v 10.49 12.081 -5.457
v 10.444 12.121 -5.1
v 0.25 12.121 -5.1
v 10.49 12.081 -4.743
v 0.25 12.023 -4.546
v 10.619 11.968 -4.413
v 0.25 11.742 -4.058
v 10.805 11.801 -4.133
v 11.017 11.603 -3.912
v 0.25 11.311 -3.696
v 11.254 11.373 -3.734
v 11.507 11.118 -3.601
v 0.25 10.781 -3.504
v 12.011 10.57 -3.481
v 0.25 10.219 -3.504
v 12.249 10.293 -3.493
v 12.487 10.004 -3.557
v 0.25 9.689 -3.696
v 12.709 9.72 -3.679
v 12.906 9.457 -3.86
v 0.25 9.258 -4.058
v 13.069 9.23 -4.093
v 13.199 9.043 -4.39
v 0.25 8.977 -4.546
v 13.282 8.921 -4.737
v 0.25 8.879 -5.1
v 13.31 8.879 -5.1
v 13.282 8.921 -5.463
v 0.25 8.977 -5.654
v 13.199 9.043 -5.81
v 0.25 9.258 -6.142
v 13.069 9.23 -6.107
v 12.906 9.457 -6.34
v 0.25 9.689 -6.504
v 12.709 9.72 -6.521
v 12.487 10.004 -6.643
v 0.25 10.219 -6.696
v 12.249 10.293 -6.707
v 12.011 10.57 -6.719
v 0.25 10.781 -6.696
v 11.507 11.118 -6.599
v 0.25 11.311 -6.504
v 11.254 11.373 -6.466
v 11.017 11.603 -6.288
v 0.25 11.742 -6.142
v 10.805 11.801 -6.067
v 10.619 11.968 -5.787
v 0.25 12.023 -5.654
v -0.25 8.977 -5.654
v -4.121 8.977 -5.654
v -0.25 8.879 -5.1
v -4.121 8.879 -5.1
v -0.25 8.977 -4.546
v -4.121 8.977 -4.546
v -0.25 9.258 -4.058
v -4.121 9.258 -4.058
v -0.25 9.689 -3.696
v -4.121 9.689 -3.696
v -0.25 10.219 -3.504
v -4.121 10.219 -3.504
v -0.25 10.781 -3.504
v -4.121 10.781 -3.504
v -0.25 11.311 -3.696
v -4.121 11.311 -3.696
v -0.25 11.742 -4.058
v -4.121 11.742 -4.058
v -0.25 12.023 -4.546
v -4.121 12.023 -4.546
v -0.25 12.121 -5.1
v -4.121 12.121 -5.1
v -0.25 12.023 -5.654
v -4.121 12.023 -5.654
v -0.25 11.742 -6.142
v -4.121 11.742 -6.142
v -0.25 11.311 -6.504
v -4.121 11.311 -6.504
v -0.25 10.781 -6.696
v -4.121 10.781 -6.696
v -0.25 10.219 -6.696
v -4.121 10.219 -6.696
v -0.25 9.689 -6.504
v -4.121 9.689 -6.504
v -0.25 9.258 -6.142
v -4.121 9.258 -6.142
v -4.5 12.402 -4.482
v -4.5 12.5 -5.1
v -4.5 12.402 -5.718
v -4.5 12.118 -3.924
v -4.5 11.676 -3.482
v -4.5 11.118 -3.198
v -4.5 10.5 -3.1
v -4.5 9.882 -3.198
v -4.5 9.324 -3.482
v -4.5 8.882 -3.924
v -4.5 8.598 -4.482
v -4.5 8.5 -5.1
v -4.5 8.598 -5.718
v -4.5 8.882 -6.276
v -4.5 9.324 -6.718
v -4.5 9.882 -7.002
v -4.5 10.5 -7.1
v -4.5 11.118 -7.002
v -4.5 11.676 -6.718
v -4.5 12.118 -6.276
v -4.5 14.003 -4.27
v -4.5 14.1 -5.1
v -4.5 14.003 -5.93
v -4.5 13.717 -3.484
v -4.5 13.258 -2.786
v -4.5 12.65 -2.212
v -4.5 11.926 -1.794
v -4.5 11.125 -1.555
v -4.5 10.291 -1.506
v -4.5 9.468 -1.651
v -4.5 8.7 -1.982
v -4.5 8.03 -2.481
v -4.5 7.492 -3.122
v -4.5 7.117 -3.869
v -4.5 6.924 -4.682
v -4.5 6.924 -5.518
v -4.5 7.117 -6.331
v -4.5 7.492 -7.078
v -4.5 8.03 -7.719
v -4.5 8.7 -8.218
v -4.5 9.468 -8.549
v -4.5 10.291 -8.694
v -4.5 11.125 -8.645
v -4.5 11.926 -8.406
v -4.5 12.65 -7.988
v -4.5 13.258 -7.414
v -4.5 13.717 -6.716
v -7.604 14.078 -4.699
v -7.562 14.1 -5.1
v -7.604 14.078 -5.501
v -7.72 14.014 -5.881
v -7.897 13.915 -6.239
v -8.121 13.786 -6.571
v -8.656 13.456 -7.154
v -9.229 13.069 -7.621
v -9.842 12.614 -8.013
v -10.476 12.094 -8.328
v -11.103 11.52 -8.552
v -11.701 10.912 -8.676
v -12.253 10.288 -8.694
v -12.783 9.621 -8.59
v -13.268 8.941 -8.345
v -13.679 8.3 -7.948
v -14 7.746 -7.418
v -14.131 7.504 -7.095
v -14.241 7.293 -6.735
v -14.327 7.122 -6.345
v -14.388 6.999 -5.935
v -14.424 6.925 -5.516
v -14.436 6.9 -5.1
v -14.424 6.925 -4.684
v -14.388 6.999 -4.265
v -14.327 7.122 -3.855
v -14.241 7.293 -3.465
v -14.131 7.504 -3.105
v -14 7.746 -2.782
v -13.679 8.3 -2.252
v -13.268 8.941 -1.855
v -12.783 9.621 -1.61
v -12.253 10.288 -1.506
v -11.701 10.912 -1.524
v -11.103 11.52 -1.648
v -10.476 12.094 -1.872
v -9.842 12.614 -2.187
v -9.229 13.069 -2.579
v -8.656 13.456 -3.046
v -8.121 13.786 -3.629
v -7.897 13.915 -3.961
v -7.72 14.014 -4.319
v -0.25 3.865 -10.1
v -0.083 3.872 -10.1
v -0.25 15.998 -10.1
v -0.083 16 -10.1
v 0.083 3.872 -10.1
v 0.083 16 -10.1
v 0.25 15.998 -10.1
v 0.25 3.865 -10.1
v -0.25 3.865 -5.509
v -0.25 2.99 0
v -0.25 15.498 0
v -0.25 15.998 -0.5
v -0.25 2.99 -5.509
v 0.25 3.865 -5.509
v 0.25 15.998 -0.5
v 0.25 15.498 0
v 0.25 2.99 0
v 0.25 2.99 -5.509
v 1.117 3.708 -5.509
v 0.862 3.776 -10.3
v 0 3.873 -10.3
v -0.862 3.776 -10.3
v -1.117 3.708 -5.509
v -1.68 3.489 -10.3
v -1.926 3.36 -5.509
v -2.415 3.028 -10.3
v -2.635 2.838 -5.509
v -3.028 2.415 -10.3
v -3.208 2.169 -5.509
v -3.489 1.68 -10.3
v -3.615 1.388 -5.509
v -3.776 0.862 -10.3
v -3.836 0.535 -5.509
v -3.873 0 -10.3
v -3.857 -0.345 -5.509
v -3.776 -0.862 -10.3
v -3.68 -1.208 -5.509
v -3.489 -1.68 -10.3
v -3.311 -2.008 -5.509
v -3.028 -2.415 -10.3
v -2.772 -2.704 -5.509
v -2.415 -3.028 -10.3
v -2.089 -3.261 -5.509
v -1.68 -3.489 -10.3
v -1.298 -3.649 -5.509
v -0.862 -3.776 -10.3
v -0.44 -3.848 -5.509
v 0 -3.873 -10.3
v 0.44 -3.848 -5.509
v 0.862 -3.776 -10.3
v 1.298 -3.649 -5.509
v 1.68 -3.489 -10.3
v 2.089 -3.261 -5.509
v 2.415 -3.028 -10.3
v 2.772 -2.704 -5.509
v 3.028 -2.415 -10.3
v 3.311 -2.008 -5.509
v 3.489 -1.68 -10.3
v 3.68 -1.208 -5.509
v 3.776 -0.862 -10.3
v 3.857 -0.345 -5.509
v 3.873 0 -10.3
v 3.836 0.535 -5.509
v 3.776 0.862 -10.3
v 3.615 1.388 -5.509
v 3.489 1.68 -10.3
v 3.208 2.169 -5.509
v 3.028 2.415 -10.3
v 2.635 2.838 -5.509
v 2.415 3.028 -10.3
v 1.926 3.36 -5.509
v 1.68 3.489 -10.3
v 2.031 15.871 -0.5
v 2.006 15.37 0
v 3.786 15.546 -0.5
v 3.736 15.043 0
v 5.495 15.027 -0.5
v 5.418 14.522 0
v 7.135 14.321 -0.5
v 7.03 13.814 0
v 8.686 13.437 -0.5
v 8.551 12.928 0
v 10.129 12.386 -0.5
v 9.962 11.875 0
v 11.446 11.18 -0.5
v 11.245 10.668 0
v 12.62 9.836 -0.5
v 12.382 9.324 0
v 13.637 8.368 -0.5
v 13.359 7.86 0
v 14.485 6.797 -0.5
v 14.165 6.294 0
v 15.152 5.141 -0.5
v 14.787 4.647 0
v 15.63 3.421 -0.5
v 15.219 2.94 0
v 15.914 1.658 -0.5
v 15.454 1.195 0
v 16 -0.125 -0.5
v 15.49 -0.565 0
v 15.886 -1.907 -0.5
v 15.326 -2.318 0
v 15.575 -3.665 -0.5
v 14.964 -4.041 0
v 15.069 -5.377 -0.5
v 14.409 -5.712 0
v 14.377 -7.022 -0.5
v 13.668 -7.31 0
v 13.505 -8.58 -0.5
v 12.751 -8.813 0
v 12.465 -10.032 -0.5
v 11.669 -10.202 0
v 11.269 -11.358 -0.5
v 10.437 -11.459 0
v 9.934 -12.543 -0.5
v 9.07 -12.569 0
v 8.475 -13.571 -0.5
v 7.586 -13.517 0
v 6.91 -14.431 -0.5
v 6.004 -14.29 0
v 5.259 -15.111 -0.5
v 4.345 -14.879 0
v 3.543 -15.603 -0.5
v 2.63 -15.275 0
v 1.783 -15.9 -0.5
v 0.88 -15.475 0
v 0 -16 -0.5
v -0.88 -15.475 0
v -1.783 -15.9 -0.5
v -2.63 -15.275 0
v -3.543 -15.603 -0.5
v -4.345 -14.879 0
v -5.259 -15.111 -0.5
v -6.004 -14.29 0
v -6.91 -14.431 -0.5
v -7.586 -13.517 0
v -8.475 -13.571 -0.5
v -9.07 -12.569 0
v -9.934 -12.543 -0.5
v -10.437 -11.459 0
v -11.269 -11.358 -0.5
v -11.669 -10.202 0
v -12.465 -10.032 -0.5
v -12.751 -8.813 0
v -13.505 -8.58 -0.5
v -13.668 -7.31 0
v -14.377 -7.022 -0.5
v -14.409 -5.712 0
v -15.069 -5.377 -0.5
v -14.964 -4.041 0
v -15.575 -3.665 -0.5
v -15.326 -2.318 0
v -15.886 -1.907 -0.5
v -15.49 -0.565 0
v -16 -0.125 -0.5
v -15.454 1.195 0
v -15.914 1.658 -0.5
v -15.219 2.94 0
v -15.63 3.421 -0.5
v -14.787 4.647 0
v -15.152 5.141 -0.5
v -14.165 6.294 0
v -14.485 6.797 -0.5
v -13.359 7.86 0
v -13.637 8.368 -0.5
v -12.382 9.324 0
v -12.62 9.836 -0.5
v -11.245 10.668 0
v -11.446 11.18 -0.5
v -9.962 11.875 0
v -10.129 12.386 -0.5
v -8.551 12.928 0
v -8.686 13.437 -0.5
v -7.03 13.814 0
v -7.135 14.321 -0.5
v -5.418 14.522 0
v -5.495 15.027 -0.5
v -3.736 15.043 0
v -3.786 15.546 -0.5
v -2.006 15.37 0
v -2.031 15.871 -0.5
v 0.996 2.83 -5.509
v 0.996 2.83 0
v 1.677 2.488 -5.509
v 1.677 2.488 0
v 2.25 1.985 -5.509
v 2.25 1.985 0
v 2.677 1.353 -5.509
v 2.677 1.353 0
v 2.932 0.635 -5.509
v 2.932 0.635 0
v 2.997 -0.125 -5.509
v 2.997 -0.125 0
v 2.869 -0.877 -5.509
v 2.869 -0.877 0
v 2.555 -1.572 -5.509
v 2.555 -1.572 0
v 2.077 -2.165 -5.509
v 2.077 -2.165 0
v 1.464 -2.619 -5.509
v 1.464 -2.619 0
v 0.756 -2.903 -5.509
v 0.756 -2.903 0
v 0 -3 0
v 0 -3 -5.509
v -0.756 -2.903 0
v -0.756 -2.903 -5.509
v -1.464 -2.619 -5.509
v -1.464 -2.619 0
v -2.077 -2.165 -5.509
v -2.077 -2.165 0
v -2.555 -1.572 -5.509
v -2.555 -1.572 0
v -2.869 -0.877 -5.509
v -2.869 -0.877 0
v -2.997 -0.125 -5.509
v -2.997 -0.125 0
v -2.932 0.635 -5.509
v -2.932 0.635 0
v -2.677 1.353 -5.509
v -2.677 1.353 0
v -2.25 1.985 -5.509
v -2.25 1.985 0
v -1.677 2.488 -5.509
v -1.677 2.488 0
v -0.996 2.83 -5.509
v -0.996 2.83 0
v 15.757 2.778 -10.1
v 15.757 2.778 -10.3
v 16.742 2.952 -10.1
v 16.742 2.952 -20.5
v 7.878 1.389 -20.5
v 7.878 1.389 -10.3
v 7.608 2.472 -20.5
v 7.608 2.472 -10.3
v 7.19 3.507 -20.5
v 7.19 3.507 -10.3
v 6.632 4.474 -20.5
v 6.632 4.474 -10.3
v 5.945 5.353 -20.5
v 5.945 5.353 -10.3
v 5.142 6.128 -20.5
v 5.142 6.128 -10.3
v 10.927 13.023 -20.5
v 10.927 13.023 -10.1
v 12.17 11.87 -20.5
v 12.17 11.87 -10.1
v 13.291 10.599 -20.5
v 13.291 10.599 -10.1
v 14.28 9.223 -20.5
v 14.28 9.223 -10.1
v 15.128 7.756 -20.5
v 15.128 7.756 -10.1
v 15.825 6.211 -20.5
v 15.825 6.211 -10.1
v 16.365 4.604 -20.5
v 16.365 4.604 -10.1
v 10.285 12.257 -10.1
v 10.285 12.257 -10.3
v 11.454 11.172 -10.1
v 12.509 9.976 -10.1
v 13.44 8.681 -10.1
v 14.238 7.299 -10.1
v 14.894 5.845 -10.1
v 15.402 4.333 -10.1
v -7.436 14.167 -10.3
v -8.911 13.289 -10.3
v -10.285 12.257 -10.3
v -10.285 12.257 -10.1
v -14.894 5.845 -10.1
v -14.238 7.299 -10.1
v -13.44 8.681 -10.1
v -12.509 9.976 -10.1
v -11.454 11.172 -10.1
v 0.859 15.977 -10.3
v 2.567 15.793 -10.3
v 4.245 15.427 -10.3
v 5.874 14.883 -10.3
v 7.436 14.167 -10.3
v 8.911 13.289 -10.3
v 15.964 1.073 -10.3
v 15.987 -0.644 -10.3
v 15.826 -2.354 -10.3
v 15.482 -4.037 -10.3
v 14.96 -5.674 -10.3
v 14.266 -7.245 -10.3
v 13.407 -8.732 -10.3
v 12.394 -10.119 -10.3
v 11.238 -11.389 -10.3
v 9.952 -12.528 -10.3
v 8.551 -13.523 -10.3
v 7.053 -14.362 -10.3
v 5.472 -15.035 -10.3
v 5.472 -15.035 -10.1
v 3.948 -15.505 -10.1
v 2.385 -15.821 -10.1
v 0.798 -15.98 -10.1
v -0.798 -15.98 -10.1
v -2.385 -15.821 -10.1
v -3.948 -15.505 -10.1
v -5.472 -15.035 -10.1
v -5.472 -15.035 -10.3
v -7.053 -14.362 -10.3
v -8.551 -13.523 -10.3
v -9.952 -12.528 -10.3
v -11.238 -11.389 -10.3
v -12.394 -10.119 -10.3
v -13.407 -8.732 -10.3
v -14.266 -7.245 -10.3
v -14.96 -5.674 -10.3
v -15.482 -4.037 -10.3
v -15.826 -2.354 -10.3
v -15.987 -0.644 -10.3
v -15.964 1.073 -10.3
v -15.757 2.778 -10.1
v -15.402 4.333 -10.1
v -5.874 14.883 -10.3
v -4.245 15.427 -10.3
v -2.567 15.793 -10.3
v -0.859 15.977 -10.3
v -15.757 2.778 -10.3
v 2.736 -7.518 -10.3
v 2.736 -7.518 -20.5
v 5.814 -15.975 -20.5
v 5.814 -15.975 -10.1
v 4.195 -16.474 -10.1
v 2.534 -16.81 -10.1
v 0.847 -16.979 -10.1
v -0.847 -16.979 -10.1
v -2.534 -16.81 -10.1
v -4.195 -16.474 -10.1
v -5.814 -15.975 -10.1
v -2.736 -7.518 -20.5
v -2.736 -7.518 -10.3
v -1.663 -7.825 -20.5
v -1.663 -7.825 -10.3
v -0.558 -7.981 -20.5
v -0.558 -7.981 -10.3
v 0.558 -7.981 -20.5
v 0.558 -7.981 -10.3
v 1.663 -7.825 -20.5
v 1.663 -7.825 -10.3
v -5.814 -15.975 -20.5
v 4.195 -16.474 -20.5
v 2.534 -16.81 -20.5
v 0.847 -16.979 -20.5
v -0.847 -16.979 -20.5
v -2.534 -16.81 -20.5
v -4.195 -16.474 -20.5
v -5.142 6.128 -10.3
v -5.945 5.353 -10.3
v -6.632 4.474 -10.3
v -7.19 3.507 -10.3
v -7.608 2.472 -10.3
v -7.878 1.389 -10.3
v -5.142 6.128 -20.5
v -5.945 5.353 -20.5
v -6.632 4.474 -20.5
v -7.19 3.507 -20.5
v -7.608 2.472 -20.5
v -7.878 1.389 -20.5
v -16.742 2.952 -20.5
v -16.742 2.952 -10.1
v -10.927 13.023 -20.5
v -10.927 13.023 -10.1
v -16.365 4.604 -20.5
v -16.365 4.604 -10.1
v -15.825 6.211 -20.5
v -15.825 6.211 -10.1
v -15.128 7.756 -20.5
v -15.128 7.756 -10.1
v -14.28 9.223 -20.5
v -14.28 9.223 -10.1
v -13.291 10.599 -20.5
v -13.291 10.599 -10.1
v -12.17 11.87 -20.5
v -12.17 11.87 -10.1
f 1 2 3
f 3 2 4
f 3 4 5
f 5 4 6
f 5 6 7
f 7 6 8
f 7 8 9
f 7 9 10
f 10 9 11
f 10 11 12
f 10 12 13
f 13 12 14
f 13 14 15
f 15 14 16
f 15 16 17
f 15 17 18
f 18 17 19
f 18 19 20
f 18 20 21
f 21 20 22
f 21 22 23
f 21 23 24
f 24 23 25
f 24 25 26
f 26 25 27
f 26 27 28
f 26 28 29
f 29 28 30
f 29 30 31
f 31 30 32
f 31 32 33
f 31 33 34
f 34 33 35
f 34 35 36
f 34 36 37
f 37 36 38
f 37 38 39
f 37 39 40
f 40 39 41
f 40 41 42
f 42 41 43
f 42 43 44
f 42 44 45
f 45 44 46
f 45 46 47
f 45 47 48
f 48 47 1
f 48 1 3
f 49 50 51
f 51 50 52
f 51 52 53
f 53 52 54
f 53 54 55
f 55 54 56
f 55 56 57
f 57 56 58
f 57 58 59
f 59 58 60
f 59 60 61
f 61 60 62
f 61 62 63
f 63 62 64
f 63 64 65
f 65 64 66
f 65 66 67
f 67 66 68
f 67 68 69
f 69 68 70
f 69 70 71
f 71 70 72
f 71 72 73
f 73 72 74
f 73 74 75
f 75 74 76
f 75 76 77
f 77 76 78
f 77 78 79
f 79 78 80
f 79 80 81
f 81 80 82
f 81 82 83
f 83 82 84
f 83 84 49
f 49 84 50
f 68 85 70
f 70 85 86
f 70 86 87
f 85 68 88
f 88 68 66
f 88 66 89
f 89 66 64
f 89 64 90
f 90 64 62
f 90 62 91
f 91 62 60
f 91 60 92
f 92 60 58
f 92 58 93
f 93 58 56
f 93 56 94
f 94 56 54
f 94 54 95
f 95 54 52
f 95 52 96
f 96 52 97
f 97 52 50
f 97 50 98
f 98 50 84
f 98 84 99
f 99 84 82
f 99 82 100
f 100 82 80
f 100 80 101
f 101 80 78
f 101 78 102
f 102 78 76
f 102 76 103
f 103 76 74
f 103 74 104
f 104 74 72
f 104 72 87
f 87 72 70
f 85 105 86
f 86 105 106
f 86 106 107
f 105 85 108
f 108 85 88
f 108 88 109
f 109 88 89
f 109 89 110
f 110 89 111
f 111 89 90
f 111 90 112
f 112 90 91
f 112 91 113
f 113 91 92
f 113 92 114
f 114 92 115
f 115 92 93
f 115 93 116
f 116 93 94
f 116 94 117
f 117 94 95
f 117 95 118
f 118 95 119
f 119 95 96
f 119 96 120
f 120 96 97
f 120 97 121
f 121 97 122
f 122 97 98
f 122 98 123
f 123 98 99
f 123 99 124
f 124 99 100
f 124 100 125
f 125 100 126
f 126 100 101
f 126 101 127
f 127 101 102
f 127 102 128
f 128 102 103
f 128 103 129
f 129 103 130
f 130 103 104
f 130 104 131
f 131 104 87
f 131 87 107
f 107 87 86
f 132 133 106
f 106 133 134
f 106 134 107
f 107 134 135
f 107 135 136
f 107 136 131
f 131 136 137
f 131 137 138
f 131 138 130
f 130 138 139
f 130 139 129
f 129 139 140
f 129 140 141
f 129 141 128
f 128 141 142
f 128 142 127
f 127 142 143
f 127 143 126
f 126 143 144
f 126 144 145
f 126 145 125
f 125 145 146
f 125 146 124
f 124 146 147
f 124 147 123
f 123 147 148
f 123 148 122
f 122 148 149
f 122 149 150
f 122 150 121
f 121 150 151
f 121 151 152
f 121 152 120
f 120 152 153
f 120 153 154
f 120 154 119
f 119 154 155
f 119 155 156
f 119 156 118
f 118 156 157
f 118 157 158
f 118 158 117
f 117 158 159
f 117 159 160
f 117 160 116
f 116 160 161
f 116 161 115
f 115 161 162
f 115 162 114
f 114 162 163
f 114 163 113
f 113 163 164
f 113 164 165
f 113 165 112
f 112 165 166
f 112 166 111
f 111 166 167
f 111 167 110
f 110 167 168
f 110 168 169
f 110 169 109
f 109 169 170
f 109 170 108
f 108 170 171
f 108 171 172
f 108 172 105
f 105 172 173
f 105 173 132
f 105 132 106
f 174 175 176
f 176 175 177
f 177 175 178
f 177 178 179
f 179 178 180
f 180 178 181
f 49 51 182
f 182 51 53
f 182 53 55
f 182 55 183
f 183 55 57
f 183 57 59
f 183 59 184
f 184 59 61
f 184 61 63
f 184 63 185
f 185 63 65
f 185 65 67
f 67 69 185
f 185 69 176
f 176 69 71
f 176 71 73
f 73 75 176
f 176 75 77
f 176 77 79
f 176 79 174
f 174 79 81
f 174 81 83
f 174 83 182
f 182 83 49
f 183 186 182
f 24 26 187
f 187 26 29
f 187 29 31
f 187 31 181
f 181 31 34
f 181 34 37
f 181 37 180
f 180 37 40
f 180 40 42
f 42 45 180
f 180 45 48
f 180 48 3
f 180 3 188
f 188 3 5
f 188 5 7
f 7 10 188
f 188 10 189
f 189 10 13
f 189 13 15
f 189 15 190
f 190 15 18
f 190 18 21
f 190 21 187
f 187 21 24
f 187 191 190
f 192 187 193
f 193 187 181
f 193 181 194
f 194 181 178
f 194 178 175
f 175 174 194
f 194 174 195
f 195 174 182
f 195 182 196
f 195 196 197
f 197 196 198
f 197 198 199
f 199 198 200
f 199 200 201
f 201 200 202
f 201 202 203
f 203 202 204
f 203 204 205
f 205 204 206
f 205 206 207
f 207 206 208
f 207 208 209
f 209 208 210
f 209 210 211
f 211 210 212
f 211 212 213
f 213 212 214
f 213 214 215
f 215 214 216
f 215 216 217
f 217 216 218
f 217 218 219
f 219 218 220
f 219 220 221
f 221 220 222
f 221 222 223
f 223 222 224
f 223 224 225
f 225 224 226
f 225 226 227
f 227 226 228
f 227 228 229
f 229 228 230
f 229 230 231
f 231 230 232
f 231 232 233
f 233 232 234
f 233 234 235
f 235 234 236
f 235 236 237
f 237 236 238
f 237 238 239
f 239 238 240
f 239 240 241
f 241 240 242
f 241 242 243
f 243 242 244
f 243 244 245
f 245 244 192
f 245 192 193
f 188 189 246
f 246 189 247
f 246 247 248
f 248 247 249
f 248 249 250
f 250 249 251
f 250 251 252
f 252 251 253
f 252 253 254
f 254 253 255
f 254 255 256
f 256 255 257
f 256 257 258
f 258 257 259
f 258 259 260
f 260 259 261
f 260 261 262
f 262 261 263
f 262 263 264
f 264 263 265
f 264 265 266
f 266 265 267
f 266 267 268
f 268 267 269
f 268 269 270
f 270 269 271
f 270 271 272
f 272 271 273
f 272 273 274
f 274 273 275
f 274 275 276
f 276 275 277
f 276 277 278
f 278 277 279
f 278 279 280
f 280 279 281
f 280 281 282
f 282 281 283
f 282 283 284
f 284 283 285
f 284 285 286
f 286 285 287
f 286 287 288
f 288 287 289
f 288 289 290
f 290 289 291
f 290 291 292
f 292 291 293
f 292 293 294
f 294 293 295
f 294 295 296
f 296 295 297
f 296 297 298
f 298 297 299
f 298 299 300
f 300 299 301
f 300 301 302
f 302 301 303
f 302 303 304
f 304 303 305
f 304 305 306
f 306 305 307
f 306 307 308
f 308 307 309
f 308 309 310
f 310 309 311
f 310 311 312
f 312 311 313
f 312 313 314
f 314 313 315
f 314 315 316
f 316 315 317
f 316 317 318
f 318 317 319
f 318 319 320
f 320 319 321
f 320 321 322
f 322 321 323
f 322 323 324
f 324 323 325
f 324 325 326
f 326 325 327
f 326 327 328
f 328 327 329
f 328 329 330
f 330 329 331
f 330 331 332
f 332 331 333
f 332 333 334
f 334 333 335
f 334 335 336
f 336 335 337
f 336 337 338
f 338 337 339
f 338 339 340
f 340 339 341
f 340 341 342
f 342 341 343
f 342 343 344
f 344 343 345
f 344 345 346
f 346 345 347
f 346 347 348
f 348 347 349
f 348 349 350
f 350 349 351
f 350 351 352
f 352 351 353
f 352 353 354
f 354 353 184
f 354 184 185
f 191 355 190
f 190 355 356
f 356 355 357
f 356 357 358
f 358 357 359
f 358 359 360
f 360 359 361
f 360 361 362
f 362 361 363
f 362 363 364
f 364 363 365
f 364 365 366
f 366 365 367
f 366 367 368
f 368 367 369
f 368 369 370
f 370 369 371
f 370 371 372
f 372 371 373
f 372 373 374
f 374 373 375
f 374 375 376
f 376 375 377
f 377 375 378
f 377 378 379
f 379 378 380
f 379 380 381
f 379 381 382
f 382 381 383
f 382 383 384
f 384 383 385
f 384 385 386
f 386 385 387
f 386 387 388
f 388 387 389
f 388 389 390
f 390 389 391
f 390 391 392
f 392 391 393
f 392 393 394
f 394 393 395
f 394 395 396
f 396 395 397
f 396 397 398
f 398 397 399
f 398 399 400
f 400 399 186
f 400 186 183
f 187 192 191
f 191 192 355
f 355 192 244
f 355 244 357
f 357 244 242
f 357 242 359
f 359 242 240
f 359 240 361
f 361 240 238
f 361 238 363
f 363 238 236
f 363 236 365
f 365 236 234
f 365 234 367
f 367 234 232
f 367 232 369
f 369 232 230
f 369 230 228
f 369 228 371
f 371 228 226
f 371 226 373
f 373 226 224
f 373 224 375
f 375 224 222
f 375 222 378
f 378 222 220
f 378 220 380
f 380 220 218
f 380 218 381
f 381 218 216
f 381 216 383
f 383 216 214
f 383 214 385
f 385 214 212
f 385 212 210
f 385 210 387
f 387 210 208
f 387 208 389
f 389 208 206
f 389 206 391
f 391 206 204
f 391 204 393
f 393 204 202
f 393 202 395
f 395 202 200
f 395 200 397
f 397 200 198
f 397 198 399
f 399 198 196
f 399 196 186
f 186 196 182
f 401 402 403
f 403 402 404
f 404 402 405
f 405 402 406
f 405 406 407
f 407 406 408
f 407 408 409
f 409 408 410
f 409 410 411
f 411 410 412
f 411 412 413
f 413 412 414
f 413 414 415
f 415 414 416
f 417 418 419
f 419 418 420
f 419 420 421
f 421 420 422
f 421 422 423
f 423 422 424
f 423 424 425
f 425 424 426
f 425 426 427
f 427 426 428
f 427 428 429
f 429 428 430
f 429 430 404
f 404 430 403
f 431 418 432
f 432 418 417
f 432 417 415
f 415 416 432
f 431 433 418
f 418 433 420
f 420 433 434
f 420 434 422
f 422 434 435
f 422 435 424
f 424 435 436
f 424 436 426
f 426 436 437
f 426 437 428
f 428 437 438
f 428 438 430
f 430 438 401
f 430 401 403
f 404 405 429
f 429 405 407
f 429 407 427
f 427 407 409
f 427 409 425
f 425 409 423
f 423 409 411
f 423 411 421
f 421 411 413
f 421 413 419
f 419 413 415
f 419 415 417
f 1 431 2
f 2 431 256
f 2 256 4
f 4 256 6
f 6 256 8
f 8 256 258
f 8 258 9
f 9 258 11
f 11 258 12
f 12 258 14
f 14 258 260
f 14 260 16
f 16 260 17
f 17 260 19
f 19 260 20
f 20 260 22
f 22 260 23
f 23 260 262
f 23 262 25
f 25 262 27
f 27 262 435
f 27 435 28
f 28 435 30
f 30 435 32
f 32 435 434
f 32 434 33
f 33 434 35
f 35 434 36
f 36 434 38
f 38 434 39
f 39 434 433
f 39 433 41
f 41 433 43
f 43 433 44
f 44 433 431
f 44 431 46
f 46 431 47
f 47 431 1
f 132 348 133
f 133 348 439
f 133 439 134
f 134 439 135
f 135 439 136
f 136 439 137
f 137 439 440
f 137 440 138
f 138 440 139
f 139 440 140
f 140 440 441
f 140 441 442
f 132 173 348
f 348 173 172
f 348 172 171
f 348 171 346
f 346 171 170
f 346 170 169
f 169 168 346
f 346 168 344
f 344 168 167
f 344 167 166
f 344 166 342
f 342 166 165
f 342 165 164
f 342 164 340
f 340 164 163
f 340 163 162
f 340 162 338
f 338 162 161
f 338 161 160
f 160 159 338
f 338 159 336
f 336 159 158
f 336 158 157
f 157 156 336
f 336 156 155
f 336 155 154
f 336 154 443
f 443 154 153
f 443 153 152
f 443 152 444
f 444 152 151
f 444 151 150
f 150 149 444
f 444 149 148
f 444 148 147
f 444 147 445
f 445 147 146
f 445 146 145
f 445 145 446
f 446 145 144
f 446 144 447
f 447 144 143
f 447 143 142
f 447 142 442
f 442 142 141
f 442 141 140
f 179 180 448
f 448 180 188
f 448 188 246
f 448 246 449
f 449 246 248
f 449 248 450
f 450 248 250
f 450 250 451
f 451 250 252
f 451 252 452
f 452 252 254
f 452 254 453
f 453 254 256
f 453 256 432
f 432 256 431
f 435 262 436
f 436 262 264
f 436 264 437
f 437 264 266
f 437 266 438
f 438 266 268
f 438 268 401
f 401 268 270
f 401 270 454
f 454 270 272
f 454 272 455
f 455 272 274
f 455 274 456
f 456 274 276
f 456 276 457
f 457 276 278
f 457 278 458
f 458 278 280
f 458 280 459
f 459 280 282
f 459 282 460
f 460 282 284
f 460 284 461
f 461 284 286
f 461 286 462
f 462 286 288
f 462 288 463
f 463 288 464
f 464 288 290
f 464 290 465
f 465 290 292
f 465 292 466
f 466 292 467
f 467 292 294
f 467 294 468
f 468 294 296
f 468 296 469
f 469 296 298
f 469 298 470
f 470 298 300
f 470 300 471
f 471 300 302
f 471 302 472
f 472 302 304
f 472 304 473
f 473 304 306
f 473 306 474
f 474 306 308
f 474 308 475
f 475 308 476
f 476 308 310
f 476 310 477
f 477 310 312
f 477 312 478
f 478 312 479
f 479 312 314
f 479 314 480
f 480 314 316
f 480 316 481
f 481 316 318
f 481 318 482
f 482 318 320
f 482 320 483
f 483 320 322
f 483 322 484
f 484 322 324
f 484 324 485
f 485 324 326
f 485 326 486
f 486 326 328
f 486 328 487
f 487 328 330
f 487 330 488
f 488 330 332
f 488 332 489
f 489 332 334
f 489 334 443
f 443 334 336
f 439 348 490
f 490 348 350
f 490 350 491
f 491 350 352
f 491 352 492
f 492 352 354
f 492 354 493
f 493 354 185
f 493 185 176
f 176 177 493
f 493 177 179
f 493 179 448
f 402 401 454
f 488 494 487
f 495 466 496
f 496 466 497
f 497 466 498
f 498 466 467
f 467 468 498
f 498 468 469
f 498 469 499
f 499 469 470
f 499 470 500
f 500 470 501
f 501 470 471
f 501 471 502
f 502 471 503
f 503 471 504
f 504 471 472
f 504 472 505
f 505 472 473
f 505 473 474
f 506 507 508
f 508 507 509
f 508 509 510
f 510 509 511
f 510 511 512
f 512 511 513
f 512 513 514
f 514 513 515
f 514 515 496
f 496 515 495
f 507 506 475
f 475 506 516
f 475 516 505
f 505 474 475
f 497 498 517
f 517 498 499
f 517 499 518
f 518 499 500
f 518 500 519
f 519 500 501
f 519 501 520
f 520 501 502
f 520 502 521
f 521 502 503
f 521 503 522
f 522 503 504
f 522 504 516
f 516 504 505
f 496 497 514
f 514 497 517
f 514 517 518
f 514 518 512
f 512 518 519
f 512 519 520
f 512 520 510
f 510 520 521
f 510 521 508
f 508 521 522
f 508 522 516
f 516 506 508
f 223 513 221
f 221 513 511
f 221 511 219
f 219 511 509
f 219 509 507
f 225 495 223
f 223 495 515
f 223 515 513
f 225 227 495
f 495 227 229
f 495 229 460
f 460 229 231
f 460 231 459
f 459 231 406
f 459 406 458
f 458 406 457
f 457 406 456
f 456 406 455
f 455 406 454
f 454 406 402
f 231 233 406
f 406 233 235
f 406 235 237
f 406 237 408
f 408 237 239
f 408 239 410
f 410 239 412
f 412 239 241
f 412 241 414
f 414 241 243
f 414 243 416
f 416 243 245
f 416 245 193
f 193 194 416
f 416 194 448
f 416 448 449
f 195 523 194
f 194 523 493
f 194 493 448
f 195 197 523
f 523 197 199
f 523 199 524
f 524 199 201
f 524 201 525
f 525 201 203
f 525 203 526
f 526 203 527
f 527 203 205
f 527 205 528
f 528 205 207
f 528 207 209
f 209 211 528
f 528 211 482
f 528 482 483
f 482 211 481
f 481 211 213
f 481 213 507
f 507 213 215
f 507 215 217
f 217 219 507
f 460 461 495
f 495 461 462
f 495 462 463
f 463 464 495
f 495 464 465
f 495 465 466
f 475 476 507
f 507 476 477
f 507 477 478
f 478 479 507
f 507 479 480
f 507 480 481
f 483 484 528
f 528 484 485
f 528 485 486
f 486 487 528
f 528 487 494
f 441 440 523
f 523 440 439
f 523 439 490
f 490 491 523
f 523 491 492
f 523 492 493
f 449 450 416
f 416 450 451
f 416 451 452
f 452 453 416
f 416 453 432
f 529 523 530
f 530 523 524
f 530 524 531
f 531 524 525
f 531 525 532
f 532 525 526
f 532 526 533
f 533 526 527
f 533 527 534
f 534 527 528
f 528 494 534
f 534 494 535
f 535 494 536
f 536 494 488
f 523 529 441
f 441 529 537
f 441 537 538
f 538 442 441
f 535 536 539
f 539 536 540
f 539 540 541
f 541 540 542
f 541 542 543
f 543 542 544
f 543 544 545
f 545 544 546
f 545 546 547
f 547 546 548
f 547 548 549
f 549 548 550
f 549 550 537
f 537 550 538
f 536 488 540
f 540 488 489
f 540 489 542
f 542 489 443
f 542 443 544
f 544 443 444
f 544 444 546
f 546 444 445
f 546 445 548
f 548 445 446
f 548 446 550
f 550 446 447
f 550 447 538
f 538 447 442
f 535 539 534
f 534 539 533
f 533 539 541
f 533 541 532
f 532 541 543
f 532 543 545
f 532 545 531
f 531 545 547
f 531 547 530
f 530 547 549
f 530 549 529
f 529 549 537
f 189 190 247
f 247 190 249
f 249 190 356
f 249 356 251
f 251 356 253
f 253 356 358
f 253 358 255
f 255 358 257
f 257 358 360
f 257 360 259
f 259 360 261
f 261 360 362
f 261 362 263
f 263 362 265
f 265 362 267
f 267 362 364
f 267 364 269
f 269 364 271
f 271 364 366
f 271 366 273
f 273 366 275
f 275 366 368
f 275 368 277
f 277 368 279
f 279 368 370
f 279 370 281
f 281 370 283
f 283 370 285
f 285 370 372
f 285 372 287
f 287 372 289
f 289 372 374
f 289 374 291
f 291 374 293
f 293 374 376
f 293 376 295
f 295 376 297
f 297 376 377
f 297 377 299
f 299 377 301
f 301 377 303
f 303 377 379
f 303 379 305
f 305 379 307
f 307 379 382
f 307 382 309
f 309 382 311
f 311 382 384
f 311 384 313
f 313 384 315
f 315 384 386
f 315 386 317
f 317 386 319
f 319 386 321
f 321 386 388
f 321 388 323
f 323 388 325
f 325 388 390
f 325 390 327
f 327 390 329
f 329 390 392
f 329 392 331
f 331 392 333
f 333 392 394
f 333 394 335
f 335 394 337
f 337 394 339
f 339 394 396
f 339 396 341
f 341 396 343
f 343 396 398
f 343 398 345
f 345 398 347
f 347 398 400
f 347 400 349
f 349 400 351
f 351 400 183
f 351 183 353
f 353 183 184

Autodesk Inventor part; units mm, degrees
sketch "Sketch_1" plane through (0, 0, 0) normal (1, 0, 0) x (0, 1, 0)
  line L0 (0, -10.3) -> (0, 0)
  line L1 (0, 0) -> (15.5, 0)
  line L2 (15.5, 0) -> (16, -0.5)
  line L3 (16, -0.5) -> (16, -10.3)
  line L4 (16, -10.3) -> (0, -10.3)
  line L5 (0, -10.3) -> (0, 0)
revolve "Revolution1" add sketch "Sketch_1" angle 360 about axis through (0, 0, -10.3) along (0, 0, -1)
sketch "Sketch_2" plane through (0, 0, -10.1) normal (0, 0, 1) x (1, 0, 0)
  line L0 (-16.7417, 2.952) -> (-7.8785, 1.3892)
  arc A0 (-5.1423, 6.1284) -> (-7.8785, 1.3892) centre (0, 0) ccw
  line L1 (-5.1423, 6.1284) -> (-10.9274, 13.0228)
  arc A1 (-10.9274, 13.0228) -> (-16.7417, 2.952) centre (0, 0) ccw
extrude "Extrusion1" add sketch "Sketch_2" against normal blind 10.4
sketch "Sketch_3" plane through (0, 0, -10.1) normal (0, 0, 1) x (1, 0, 0)
  arc A0 (-5.8143, -15.9748) -> (5.8143, -15.9748) centre (0, 0) ccw
  line L0 (5.8143, -15.9748) -> (2.7362, -7.5175)
  arc A1 (-2.7362, -7.5175) -> (2.7362, -7.5175) centre (0, 0) ccw
  line L1 (-2.7362, -7.5175) -> (-5.8143, -15.9748)
extrude "Extrusion2" add sketch "Sketch_3" against normal blind 10.4
sketch "Sketch_19" plane through (0, 0, -10.1) normal (0, 0, 1) x (1, 0, 0)
  arc A0 (7.8785, 1.3892) -> (5.1423, 6.1284) centre (0, 0) ccw
  line L0 (7.8785, 1.3892) -> (16.7417, 2.952)
  arc A1 (16.7417, 2.952) -> (10.9274, 13.0228) centre (0, 0) ccw
  line L1 (10.9274, 13.0228) -> (5.1423, 6.1284)
extrude "Extrusion3" add sketch "Sketch_19" against normal blind 10.4
sketch "Sketch_9" plane through (0, 0, 0) normal (1, 0, 0) x (0, 1, 0)
  line L0 (0, -28.3636) -> (0, 0)
  line L1 (0, 0) -> (3, 0)
  line L2 (3, 0) -> (3, -5.5091)
  line L3 (3, -5.5091) -> (3.8727, -5.5091)
  line L4 (3.8727, -5.5091) -> (3.8727, -11.8909)
  line L5 (3.8727, -11.8909) -> (2.4545, -11.8909)
  line L6 (2.4545, -11.8909) -> (2.4545, -13.2545)
  line L7 (2.4545, -13.2545) -> (1.1275, -13.2545)
  line L8 (1.1275, -13.2545) -> (1.1275, -28.1275)
  line L9 (1.1275, -28.1275) -> (1.3636, -28.3636)
  line L10 (1.3636, -28.3636) -> (0, -28.3636)
  line L11 (0, -28.3636) -> (0, 0)
  dimension "d36" = 3
revolve "Revolution3" cut sketch "Sketch_9" angle 360 about axis through (0, 0, -28.3636) along (0, 0, -1)
sketch "Sketch_12" plane through (0, 0, 0) normal (0, 0, 1) x (1, 0, 0)
  line L0 (-0.25, 16) -> (-0.25, 0)
  line L1 (-0.25, 0) -> (0.25, 0)
  line L2 (0.25, 0) -> (0.25, 16)
  line L3 (0.25, 16) -> (-0.25, 16)
extrude "Extrusion10" cut sketch "Sketch_12" against normal blind 10.1
sketch "Sketch_13" plane through (0, 0, -5.1) normal (0, 0, 1) x (1, 0, 0)
  line L0 (13.5, 10.5) -> (-16.5, 10.5)
  line L1 (-16.5, 10.5) -> (-16.5, 14.1)
  line L2 (-16.5, 14.1) -> (-4.5, 14.1)
  line L3 (-4.5, 14.1) -> (-4.5, 12.5)
  line L4 (-4.5, 12.5) -> (-4.121, 12.121)
  line L5 (-4.121, 12.121) -> (13.5, 12.121)
  line L6 (13.5, 12.121) -> (13.5, 10.5)
  line L7 (13.5, 10.5) -> (-16.5, 10.5)
revolve "Revolution6" cut sketch "Sketch_13" angle 360 about axis through (13.5, 10.5, -5.1) along (-1, 0, 0)
thread "Thread2" size "M4x0.7" class "6H" standard "ISO Metric profile" length 17.621
sketch "Sketch_11" plane through (0, 0, -21.8) normal (0, 0, 1) x (0, 1, 0)
  arc A0 (-1.8674, -0.5726) -> (-1.4296, -1.3309) centre (-1.5586, -0.8998) ccw
  arc A1 (-0.4378, -1.9035) -> (-1.4296, -1.3309) centre (-1.2039, -2.0852) ccw
  arc A2 (-0.4378, -1.9035) -> (0.4378, -1.9035) centre (0, -1.7997) ccw
  arc A3 (1.4296, -1.3309) -> (0.4378, -1.9035) centre (1.2039, -2.0852) ccw
  arc A4 (1.4296, -1.3309) -> (1.8674, -0.5726) centre (1.5586, -0.8998) ccw
  arc A5 (1.8674, 0.5726) -> (1.8674, -0.5726) centre (2.4078, 0) ccw
  arc A6 (1.8674, 0.5726) -> (1.4296, 1.3309) centre (1.5586, 0.8999) ccw
  arc A7 (0.4378, 1.9035) -> (1.4296, 1.3309) centre (1.2039, 2.0852) ccw
  arc A8 (0.4378, 1.9035) -> (-0.4378, 1.9035) centre (0, 1.7997) ccw
  arc A9 (-1.4296, 1.3309) -> (-0.4378, 1.9035) centre (-1.2039, 2.0852) ccw
  arc A10 (-1.4296, 1.3309) -> (-1.8674, 0.5726) centre (-1.5586, 0.8999) ccw
  arc A11 (-1.8674, -0.5726) -> (-1.8674, 0.5726) centre (-2.4078, 0) ccw
extrude "Extrusion11" cut sketch "Sketch_11" against normal blind 2.64
sketch "Sketch_15" plane through (-8.5, 10.5, -5.1) normal (-1, 0, 0) x (0, 1, 0)
  arc A0 (-1.6394, -0.5027) -> (-1.2551, -1.1684) centre (-1.3683, -0.79) ccw
  arc A1 (-0.3843, -1.6711) -> (-1.2551, -1.1684) centre (-1.0569, -1.8307) ccw
  arc A2 (-0.3843, -1.6711) -> (0.3843, -1.6711) centre (0, -1.58) ccw
  arc A3 (1.2551, -1.1684) -> (0.3843, -1.6711) centre (1.0569, -1.8307) ccw
  arc A4 (1.2551, -1.1684) -> (1.6394, -0.5027) centre (1.3683, -0.79) ccw
  arc A5 (1.6394, 0.5027) -> (1.6394, -0.5027) centre (2.1139, 0) ccw
  arc A6 (1.6394, 0.5027) -> (1.2551, 1.1684) centre (1.3683, 0.79) ccw
  arc A7 (0.3843, 1.6711) -> (1.2551, 1.1684) centre (1.0569, 1.8307) ccw
  arc A8 (0.3843, 1.6711) -> (-0.3843, 1.6711) centre (0, 1.58) ccw
  arc A9 (-1.2551, 1.1684) -> (-0.3843, 1.6711) centre (-1.0569, 1.8307) ccw
  arc A10 (-1.2551, 1.1684) -> (-1.6394, 0.5027) centre (-1.3683, 0.79) ccw
  arc A11 (-1.6394, -0.5027) -> (-1.6394, 0.5027) centre (-2.1139, 0) ccw
extrude "Extrusion12" cut sketch "Sketch_15" against normal blind 2.34
ref_plane "KUPPLUNG_XY" through (0, 0, 0) normal (0, 0, 1) x (1, 0, 0)
ref_plane "KUPPLUNG_YZ" through (0, 0, 0) normal (1, 0, 0) x (0, 1, 0)
ref_plane "KUPPLUNG_ZX" through (0, 0, 0) normal (0, 1, 0) x (0, 0, 1)
properties part number "Coupling"
